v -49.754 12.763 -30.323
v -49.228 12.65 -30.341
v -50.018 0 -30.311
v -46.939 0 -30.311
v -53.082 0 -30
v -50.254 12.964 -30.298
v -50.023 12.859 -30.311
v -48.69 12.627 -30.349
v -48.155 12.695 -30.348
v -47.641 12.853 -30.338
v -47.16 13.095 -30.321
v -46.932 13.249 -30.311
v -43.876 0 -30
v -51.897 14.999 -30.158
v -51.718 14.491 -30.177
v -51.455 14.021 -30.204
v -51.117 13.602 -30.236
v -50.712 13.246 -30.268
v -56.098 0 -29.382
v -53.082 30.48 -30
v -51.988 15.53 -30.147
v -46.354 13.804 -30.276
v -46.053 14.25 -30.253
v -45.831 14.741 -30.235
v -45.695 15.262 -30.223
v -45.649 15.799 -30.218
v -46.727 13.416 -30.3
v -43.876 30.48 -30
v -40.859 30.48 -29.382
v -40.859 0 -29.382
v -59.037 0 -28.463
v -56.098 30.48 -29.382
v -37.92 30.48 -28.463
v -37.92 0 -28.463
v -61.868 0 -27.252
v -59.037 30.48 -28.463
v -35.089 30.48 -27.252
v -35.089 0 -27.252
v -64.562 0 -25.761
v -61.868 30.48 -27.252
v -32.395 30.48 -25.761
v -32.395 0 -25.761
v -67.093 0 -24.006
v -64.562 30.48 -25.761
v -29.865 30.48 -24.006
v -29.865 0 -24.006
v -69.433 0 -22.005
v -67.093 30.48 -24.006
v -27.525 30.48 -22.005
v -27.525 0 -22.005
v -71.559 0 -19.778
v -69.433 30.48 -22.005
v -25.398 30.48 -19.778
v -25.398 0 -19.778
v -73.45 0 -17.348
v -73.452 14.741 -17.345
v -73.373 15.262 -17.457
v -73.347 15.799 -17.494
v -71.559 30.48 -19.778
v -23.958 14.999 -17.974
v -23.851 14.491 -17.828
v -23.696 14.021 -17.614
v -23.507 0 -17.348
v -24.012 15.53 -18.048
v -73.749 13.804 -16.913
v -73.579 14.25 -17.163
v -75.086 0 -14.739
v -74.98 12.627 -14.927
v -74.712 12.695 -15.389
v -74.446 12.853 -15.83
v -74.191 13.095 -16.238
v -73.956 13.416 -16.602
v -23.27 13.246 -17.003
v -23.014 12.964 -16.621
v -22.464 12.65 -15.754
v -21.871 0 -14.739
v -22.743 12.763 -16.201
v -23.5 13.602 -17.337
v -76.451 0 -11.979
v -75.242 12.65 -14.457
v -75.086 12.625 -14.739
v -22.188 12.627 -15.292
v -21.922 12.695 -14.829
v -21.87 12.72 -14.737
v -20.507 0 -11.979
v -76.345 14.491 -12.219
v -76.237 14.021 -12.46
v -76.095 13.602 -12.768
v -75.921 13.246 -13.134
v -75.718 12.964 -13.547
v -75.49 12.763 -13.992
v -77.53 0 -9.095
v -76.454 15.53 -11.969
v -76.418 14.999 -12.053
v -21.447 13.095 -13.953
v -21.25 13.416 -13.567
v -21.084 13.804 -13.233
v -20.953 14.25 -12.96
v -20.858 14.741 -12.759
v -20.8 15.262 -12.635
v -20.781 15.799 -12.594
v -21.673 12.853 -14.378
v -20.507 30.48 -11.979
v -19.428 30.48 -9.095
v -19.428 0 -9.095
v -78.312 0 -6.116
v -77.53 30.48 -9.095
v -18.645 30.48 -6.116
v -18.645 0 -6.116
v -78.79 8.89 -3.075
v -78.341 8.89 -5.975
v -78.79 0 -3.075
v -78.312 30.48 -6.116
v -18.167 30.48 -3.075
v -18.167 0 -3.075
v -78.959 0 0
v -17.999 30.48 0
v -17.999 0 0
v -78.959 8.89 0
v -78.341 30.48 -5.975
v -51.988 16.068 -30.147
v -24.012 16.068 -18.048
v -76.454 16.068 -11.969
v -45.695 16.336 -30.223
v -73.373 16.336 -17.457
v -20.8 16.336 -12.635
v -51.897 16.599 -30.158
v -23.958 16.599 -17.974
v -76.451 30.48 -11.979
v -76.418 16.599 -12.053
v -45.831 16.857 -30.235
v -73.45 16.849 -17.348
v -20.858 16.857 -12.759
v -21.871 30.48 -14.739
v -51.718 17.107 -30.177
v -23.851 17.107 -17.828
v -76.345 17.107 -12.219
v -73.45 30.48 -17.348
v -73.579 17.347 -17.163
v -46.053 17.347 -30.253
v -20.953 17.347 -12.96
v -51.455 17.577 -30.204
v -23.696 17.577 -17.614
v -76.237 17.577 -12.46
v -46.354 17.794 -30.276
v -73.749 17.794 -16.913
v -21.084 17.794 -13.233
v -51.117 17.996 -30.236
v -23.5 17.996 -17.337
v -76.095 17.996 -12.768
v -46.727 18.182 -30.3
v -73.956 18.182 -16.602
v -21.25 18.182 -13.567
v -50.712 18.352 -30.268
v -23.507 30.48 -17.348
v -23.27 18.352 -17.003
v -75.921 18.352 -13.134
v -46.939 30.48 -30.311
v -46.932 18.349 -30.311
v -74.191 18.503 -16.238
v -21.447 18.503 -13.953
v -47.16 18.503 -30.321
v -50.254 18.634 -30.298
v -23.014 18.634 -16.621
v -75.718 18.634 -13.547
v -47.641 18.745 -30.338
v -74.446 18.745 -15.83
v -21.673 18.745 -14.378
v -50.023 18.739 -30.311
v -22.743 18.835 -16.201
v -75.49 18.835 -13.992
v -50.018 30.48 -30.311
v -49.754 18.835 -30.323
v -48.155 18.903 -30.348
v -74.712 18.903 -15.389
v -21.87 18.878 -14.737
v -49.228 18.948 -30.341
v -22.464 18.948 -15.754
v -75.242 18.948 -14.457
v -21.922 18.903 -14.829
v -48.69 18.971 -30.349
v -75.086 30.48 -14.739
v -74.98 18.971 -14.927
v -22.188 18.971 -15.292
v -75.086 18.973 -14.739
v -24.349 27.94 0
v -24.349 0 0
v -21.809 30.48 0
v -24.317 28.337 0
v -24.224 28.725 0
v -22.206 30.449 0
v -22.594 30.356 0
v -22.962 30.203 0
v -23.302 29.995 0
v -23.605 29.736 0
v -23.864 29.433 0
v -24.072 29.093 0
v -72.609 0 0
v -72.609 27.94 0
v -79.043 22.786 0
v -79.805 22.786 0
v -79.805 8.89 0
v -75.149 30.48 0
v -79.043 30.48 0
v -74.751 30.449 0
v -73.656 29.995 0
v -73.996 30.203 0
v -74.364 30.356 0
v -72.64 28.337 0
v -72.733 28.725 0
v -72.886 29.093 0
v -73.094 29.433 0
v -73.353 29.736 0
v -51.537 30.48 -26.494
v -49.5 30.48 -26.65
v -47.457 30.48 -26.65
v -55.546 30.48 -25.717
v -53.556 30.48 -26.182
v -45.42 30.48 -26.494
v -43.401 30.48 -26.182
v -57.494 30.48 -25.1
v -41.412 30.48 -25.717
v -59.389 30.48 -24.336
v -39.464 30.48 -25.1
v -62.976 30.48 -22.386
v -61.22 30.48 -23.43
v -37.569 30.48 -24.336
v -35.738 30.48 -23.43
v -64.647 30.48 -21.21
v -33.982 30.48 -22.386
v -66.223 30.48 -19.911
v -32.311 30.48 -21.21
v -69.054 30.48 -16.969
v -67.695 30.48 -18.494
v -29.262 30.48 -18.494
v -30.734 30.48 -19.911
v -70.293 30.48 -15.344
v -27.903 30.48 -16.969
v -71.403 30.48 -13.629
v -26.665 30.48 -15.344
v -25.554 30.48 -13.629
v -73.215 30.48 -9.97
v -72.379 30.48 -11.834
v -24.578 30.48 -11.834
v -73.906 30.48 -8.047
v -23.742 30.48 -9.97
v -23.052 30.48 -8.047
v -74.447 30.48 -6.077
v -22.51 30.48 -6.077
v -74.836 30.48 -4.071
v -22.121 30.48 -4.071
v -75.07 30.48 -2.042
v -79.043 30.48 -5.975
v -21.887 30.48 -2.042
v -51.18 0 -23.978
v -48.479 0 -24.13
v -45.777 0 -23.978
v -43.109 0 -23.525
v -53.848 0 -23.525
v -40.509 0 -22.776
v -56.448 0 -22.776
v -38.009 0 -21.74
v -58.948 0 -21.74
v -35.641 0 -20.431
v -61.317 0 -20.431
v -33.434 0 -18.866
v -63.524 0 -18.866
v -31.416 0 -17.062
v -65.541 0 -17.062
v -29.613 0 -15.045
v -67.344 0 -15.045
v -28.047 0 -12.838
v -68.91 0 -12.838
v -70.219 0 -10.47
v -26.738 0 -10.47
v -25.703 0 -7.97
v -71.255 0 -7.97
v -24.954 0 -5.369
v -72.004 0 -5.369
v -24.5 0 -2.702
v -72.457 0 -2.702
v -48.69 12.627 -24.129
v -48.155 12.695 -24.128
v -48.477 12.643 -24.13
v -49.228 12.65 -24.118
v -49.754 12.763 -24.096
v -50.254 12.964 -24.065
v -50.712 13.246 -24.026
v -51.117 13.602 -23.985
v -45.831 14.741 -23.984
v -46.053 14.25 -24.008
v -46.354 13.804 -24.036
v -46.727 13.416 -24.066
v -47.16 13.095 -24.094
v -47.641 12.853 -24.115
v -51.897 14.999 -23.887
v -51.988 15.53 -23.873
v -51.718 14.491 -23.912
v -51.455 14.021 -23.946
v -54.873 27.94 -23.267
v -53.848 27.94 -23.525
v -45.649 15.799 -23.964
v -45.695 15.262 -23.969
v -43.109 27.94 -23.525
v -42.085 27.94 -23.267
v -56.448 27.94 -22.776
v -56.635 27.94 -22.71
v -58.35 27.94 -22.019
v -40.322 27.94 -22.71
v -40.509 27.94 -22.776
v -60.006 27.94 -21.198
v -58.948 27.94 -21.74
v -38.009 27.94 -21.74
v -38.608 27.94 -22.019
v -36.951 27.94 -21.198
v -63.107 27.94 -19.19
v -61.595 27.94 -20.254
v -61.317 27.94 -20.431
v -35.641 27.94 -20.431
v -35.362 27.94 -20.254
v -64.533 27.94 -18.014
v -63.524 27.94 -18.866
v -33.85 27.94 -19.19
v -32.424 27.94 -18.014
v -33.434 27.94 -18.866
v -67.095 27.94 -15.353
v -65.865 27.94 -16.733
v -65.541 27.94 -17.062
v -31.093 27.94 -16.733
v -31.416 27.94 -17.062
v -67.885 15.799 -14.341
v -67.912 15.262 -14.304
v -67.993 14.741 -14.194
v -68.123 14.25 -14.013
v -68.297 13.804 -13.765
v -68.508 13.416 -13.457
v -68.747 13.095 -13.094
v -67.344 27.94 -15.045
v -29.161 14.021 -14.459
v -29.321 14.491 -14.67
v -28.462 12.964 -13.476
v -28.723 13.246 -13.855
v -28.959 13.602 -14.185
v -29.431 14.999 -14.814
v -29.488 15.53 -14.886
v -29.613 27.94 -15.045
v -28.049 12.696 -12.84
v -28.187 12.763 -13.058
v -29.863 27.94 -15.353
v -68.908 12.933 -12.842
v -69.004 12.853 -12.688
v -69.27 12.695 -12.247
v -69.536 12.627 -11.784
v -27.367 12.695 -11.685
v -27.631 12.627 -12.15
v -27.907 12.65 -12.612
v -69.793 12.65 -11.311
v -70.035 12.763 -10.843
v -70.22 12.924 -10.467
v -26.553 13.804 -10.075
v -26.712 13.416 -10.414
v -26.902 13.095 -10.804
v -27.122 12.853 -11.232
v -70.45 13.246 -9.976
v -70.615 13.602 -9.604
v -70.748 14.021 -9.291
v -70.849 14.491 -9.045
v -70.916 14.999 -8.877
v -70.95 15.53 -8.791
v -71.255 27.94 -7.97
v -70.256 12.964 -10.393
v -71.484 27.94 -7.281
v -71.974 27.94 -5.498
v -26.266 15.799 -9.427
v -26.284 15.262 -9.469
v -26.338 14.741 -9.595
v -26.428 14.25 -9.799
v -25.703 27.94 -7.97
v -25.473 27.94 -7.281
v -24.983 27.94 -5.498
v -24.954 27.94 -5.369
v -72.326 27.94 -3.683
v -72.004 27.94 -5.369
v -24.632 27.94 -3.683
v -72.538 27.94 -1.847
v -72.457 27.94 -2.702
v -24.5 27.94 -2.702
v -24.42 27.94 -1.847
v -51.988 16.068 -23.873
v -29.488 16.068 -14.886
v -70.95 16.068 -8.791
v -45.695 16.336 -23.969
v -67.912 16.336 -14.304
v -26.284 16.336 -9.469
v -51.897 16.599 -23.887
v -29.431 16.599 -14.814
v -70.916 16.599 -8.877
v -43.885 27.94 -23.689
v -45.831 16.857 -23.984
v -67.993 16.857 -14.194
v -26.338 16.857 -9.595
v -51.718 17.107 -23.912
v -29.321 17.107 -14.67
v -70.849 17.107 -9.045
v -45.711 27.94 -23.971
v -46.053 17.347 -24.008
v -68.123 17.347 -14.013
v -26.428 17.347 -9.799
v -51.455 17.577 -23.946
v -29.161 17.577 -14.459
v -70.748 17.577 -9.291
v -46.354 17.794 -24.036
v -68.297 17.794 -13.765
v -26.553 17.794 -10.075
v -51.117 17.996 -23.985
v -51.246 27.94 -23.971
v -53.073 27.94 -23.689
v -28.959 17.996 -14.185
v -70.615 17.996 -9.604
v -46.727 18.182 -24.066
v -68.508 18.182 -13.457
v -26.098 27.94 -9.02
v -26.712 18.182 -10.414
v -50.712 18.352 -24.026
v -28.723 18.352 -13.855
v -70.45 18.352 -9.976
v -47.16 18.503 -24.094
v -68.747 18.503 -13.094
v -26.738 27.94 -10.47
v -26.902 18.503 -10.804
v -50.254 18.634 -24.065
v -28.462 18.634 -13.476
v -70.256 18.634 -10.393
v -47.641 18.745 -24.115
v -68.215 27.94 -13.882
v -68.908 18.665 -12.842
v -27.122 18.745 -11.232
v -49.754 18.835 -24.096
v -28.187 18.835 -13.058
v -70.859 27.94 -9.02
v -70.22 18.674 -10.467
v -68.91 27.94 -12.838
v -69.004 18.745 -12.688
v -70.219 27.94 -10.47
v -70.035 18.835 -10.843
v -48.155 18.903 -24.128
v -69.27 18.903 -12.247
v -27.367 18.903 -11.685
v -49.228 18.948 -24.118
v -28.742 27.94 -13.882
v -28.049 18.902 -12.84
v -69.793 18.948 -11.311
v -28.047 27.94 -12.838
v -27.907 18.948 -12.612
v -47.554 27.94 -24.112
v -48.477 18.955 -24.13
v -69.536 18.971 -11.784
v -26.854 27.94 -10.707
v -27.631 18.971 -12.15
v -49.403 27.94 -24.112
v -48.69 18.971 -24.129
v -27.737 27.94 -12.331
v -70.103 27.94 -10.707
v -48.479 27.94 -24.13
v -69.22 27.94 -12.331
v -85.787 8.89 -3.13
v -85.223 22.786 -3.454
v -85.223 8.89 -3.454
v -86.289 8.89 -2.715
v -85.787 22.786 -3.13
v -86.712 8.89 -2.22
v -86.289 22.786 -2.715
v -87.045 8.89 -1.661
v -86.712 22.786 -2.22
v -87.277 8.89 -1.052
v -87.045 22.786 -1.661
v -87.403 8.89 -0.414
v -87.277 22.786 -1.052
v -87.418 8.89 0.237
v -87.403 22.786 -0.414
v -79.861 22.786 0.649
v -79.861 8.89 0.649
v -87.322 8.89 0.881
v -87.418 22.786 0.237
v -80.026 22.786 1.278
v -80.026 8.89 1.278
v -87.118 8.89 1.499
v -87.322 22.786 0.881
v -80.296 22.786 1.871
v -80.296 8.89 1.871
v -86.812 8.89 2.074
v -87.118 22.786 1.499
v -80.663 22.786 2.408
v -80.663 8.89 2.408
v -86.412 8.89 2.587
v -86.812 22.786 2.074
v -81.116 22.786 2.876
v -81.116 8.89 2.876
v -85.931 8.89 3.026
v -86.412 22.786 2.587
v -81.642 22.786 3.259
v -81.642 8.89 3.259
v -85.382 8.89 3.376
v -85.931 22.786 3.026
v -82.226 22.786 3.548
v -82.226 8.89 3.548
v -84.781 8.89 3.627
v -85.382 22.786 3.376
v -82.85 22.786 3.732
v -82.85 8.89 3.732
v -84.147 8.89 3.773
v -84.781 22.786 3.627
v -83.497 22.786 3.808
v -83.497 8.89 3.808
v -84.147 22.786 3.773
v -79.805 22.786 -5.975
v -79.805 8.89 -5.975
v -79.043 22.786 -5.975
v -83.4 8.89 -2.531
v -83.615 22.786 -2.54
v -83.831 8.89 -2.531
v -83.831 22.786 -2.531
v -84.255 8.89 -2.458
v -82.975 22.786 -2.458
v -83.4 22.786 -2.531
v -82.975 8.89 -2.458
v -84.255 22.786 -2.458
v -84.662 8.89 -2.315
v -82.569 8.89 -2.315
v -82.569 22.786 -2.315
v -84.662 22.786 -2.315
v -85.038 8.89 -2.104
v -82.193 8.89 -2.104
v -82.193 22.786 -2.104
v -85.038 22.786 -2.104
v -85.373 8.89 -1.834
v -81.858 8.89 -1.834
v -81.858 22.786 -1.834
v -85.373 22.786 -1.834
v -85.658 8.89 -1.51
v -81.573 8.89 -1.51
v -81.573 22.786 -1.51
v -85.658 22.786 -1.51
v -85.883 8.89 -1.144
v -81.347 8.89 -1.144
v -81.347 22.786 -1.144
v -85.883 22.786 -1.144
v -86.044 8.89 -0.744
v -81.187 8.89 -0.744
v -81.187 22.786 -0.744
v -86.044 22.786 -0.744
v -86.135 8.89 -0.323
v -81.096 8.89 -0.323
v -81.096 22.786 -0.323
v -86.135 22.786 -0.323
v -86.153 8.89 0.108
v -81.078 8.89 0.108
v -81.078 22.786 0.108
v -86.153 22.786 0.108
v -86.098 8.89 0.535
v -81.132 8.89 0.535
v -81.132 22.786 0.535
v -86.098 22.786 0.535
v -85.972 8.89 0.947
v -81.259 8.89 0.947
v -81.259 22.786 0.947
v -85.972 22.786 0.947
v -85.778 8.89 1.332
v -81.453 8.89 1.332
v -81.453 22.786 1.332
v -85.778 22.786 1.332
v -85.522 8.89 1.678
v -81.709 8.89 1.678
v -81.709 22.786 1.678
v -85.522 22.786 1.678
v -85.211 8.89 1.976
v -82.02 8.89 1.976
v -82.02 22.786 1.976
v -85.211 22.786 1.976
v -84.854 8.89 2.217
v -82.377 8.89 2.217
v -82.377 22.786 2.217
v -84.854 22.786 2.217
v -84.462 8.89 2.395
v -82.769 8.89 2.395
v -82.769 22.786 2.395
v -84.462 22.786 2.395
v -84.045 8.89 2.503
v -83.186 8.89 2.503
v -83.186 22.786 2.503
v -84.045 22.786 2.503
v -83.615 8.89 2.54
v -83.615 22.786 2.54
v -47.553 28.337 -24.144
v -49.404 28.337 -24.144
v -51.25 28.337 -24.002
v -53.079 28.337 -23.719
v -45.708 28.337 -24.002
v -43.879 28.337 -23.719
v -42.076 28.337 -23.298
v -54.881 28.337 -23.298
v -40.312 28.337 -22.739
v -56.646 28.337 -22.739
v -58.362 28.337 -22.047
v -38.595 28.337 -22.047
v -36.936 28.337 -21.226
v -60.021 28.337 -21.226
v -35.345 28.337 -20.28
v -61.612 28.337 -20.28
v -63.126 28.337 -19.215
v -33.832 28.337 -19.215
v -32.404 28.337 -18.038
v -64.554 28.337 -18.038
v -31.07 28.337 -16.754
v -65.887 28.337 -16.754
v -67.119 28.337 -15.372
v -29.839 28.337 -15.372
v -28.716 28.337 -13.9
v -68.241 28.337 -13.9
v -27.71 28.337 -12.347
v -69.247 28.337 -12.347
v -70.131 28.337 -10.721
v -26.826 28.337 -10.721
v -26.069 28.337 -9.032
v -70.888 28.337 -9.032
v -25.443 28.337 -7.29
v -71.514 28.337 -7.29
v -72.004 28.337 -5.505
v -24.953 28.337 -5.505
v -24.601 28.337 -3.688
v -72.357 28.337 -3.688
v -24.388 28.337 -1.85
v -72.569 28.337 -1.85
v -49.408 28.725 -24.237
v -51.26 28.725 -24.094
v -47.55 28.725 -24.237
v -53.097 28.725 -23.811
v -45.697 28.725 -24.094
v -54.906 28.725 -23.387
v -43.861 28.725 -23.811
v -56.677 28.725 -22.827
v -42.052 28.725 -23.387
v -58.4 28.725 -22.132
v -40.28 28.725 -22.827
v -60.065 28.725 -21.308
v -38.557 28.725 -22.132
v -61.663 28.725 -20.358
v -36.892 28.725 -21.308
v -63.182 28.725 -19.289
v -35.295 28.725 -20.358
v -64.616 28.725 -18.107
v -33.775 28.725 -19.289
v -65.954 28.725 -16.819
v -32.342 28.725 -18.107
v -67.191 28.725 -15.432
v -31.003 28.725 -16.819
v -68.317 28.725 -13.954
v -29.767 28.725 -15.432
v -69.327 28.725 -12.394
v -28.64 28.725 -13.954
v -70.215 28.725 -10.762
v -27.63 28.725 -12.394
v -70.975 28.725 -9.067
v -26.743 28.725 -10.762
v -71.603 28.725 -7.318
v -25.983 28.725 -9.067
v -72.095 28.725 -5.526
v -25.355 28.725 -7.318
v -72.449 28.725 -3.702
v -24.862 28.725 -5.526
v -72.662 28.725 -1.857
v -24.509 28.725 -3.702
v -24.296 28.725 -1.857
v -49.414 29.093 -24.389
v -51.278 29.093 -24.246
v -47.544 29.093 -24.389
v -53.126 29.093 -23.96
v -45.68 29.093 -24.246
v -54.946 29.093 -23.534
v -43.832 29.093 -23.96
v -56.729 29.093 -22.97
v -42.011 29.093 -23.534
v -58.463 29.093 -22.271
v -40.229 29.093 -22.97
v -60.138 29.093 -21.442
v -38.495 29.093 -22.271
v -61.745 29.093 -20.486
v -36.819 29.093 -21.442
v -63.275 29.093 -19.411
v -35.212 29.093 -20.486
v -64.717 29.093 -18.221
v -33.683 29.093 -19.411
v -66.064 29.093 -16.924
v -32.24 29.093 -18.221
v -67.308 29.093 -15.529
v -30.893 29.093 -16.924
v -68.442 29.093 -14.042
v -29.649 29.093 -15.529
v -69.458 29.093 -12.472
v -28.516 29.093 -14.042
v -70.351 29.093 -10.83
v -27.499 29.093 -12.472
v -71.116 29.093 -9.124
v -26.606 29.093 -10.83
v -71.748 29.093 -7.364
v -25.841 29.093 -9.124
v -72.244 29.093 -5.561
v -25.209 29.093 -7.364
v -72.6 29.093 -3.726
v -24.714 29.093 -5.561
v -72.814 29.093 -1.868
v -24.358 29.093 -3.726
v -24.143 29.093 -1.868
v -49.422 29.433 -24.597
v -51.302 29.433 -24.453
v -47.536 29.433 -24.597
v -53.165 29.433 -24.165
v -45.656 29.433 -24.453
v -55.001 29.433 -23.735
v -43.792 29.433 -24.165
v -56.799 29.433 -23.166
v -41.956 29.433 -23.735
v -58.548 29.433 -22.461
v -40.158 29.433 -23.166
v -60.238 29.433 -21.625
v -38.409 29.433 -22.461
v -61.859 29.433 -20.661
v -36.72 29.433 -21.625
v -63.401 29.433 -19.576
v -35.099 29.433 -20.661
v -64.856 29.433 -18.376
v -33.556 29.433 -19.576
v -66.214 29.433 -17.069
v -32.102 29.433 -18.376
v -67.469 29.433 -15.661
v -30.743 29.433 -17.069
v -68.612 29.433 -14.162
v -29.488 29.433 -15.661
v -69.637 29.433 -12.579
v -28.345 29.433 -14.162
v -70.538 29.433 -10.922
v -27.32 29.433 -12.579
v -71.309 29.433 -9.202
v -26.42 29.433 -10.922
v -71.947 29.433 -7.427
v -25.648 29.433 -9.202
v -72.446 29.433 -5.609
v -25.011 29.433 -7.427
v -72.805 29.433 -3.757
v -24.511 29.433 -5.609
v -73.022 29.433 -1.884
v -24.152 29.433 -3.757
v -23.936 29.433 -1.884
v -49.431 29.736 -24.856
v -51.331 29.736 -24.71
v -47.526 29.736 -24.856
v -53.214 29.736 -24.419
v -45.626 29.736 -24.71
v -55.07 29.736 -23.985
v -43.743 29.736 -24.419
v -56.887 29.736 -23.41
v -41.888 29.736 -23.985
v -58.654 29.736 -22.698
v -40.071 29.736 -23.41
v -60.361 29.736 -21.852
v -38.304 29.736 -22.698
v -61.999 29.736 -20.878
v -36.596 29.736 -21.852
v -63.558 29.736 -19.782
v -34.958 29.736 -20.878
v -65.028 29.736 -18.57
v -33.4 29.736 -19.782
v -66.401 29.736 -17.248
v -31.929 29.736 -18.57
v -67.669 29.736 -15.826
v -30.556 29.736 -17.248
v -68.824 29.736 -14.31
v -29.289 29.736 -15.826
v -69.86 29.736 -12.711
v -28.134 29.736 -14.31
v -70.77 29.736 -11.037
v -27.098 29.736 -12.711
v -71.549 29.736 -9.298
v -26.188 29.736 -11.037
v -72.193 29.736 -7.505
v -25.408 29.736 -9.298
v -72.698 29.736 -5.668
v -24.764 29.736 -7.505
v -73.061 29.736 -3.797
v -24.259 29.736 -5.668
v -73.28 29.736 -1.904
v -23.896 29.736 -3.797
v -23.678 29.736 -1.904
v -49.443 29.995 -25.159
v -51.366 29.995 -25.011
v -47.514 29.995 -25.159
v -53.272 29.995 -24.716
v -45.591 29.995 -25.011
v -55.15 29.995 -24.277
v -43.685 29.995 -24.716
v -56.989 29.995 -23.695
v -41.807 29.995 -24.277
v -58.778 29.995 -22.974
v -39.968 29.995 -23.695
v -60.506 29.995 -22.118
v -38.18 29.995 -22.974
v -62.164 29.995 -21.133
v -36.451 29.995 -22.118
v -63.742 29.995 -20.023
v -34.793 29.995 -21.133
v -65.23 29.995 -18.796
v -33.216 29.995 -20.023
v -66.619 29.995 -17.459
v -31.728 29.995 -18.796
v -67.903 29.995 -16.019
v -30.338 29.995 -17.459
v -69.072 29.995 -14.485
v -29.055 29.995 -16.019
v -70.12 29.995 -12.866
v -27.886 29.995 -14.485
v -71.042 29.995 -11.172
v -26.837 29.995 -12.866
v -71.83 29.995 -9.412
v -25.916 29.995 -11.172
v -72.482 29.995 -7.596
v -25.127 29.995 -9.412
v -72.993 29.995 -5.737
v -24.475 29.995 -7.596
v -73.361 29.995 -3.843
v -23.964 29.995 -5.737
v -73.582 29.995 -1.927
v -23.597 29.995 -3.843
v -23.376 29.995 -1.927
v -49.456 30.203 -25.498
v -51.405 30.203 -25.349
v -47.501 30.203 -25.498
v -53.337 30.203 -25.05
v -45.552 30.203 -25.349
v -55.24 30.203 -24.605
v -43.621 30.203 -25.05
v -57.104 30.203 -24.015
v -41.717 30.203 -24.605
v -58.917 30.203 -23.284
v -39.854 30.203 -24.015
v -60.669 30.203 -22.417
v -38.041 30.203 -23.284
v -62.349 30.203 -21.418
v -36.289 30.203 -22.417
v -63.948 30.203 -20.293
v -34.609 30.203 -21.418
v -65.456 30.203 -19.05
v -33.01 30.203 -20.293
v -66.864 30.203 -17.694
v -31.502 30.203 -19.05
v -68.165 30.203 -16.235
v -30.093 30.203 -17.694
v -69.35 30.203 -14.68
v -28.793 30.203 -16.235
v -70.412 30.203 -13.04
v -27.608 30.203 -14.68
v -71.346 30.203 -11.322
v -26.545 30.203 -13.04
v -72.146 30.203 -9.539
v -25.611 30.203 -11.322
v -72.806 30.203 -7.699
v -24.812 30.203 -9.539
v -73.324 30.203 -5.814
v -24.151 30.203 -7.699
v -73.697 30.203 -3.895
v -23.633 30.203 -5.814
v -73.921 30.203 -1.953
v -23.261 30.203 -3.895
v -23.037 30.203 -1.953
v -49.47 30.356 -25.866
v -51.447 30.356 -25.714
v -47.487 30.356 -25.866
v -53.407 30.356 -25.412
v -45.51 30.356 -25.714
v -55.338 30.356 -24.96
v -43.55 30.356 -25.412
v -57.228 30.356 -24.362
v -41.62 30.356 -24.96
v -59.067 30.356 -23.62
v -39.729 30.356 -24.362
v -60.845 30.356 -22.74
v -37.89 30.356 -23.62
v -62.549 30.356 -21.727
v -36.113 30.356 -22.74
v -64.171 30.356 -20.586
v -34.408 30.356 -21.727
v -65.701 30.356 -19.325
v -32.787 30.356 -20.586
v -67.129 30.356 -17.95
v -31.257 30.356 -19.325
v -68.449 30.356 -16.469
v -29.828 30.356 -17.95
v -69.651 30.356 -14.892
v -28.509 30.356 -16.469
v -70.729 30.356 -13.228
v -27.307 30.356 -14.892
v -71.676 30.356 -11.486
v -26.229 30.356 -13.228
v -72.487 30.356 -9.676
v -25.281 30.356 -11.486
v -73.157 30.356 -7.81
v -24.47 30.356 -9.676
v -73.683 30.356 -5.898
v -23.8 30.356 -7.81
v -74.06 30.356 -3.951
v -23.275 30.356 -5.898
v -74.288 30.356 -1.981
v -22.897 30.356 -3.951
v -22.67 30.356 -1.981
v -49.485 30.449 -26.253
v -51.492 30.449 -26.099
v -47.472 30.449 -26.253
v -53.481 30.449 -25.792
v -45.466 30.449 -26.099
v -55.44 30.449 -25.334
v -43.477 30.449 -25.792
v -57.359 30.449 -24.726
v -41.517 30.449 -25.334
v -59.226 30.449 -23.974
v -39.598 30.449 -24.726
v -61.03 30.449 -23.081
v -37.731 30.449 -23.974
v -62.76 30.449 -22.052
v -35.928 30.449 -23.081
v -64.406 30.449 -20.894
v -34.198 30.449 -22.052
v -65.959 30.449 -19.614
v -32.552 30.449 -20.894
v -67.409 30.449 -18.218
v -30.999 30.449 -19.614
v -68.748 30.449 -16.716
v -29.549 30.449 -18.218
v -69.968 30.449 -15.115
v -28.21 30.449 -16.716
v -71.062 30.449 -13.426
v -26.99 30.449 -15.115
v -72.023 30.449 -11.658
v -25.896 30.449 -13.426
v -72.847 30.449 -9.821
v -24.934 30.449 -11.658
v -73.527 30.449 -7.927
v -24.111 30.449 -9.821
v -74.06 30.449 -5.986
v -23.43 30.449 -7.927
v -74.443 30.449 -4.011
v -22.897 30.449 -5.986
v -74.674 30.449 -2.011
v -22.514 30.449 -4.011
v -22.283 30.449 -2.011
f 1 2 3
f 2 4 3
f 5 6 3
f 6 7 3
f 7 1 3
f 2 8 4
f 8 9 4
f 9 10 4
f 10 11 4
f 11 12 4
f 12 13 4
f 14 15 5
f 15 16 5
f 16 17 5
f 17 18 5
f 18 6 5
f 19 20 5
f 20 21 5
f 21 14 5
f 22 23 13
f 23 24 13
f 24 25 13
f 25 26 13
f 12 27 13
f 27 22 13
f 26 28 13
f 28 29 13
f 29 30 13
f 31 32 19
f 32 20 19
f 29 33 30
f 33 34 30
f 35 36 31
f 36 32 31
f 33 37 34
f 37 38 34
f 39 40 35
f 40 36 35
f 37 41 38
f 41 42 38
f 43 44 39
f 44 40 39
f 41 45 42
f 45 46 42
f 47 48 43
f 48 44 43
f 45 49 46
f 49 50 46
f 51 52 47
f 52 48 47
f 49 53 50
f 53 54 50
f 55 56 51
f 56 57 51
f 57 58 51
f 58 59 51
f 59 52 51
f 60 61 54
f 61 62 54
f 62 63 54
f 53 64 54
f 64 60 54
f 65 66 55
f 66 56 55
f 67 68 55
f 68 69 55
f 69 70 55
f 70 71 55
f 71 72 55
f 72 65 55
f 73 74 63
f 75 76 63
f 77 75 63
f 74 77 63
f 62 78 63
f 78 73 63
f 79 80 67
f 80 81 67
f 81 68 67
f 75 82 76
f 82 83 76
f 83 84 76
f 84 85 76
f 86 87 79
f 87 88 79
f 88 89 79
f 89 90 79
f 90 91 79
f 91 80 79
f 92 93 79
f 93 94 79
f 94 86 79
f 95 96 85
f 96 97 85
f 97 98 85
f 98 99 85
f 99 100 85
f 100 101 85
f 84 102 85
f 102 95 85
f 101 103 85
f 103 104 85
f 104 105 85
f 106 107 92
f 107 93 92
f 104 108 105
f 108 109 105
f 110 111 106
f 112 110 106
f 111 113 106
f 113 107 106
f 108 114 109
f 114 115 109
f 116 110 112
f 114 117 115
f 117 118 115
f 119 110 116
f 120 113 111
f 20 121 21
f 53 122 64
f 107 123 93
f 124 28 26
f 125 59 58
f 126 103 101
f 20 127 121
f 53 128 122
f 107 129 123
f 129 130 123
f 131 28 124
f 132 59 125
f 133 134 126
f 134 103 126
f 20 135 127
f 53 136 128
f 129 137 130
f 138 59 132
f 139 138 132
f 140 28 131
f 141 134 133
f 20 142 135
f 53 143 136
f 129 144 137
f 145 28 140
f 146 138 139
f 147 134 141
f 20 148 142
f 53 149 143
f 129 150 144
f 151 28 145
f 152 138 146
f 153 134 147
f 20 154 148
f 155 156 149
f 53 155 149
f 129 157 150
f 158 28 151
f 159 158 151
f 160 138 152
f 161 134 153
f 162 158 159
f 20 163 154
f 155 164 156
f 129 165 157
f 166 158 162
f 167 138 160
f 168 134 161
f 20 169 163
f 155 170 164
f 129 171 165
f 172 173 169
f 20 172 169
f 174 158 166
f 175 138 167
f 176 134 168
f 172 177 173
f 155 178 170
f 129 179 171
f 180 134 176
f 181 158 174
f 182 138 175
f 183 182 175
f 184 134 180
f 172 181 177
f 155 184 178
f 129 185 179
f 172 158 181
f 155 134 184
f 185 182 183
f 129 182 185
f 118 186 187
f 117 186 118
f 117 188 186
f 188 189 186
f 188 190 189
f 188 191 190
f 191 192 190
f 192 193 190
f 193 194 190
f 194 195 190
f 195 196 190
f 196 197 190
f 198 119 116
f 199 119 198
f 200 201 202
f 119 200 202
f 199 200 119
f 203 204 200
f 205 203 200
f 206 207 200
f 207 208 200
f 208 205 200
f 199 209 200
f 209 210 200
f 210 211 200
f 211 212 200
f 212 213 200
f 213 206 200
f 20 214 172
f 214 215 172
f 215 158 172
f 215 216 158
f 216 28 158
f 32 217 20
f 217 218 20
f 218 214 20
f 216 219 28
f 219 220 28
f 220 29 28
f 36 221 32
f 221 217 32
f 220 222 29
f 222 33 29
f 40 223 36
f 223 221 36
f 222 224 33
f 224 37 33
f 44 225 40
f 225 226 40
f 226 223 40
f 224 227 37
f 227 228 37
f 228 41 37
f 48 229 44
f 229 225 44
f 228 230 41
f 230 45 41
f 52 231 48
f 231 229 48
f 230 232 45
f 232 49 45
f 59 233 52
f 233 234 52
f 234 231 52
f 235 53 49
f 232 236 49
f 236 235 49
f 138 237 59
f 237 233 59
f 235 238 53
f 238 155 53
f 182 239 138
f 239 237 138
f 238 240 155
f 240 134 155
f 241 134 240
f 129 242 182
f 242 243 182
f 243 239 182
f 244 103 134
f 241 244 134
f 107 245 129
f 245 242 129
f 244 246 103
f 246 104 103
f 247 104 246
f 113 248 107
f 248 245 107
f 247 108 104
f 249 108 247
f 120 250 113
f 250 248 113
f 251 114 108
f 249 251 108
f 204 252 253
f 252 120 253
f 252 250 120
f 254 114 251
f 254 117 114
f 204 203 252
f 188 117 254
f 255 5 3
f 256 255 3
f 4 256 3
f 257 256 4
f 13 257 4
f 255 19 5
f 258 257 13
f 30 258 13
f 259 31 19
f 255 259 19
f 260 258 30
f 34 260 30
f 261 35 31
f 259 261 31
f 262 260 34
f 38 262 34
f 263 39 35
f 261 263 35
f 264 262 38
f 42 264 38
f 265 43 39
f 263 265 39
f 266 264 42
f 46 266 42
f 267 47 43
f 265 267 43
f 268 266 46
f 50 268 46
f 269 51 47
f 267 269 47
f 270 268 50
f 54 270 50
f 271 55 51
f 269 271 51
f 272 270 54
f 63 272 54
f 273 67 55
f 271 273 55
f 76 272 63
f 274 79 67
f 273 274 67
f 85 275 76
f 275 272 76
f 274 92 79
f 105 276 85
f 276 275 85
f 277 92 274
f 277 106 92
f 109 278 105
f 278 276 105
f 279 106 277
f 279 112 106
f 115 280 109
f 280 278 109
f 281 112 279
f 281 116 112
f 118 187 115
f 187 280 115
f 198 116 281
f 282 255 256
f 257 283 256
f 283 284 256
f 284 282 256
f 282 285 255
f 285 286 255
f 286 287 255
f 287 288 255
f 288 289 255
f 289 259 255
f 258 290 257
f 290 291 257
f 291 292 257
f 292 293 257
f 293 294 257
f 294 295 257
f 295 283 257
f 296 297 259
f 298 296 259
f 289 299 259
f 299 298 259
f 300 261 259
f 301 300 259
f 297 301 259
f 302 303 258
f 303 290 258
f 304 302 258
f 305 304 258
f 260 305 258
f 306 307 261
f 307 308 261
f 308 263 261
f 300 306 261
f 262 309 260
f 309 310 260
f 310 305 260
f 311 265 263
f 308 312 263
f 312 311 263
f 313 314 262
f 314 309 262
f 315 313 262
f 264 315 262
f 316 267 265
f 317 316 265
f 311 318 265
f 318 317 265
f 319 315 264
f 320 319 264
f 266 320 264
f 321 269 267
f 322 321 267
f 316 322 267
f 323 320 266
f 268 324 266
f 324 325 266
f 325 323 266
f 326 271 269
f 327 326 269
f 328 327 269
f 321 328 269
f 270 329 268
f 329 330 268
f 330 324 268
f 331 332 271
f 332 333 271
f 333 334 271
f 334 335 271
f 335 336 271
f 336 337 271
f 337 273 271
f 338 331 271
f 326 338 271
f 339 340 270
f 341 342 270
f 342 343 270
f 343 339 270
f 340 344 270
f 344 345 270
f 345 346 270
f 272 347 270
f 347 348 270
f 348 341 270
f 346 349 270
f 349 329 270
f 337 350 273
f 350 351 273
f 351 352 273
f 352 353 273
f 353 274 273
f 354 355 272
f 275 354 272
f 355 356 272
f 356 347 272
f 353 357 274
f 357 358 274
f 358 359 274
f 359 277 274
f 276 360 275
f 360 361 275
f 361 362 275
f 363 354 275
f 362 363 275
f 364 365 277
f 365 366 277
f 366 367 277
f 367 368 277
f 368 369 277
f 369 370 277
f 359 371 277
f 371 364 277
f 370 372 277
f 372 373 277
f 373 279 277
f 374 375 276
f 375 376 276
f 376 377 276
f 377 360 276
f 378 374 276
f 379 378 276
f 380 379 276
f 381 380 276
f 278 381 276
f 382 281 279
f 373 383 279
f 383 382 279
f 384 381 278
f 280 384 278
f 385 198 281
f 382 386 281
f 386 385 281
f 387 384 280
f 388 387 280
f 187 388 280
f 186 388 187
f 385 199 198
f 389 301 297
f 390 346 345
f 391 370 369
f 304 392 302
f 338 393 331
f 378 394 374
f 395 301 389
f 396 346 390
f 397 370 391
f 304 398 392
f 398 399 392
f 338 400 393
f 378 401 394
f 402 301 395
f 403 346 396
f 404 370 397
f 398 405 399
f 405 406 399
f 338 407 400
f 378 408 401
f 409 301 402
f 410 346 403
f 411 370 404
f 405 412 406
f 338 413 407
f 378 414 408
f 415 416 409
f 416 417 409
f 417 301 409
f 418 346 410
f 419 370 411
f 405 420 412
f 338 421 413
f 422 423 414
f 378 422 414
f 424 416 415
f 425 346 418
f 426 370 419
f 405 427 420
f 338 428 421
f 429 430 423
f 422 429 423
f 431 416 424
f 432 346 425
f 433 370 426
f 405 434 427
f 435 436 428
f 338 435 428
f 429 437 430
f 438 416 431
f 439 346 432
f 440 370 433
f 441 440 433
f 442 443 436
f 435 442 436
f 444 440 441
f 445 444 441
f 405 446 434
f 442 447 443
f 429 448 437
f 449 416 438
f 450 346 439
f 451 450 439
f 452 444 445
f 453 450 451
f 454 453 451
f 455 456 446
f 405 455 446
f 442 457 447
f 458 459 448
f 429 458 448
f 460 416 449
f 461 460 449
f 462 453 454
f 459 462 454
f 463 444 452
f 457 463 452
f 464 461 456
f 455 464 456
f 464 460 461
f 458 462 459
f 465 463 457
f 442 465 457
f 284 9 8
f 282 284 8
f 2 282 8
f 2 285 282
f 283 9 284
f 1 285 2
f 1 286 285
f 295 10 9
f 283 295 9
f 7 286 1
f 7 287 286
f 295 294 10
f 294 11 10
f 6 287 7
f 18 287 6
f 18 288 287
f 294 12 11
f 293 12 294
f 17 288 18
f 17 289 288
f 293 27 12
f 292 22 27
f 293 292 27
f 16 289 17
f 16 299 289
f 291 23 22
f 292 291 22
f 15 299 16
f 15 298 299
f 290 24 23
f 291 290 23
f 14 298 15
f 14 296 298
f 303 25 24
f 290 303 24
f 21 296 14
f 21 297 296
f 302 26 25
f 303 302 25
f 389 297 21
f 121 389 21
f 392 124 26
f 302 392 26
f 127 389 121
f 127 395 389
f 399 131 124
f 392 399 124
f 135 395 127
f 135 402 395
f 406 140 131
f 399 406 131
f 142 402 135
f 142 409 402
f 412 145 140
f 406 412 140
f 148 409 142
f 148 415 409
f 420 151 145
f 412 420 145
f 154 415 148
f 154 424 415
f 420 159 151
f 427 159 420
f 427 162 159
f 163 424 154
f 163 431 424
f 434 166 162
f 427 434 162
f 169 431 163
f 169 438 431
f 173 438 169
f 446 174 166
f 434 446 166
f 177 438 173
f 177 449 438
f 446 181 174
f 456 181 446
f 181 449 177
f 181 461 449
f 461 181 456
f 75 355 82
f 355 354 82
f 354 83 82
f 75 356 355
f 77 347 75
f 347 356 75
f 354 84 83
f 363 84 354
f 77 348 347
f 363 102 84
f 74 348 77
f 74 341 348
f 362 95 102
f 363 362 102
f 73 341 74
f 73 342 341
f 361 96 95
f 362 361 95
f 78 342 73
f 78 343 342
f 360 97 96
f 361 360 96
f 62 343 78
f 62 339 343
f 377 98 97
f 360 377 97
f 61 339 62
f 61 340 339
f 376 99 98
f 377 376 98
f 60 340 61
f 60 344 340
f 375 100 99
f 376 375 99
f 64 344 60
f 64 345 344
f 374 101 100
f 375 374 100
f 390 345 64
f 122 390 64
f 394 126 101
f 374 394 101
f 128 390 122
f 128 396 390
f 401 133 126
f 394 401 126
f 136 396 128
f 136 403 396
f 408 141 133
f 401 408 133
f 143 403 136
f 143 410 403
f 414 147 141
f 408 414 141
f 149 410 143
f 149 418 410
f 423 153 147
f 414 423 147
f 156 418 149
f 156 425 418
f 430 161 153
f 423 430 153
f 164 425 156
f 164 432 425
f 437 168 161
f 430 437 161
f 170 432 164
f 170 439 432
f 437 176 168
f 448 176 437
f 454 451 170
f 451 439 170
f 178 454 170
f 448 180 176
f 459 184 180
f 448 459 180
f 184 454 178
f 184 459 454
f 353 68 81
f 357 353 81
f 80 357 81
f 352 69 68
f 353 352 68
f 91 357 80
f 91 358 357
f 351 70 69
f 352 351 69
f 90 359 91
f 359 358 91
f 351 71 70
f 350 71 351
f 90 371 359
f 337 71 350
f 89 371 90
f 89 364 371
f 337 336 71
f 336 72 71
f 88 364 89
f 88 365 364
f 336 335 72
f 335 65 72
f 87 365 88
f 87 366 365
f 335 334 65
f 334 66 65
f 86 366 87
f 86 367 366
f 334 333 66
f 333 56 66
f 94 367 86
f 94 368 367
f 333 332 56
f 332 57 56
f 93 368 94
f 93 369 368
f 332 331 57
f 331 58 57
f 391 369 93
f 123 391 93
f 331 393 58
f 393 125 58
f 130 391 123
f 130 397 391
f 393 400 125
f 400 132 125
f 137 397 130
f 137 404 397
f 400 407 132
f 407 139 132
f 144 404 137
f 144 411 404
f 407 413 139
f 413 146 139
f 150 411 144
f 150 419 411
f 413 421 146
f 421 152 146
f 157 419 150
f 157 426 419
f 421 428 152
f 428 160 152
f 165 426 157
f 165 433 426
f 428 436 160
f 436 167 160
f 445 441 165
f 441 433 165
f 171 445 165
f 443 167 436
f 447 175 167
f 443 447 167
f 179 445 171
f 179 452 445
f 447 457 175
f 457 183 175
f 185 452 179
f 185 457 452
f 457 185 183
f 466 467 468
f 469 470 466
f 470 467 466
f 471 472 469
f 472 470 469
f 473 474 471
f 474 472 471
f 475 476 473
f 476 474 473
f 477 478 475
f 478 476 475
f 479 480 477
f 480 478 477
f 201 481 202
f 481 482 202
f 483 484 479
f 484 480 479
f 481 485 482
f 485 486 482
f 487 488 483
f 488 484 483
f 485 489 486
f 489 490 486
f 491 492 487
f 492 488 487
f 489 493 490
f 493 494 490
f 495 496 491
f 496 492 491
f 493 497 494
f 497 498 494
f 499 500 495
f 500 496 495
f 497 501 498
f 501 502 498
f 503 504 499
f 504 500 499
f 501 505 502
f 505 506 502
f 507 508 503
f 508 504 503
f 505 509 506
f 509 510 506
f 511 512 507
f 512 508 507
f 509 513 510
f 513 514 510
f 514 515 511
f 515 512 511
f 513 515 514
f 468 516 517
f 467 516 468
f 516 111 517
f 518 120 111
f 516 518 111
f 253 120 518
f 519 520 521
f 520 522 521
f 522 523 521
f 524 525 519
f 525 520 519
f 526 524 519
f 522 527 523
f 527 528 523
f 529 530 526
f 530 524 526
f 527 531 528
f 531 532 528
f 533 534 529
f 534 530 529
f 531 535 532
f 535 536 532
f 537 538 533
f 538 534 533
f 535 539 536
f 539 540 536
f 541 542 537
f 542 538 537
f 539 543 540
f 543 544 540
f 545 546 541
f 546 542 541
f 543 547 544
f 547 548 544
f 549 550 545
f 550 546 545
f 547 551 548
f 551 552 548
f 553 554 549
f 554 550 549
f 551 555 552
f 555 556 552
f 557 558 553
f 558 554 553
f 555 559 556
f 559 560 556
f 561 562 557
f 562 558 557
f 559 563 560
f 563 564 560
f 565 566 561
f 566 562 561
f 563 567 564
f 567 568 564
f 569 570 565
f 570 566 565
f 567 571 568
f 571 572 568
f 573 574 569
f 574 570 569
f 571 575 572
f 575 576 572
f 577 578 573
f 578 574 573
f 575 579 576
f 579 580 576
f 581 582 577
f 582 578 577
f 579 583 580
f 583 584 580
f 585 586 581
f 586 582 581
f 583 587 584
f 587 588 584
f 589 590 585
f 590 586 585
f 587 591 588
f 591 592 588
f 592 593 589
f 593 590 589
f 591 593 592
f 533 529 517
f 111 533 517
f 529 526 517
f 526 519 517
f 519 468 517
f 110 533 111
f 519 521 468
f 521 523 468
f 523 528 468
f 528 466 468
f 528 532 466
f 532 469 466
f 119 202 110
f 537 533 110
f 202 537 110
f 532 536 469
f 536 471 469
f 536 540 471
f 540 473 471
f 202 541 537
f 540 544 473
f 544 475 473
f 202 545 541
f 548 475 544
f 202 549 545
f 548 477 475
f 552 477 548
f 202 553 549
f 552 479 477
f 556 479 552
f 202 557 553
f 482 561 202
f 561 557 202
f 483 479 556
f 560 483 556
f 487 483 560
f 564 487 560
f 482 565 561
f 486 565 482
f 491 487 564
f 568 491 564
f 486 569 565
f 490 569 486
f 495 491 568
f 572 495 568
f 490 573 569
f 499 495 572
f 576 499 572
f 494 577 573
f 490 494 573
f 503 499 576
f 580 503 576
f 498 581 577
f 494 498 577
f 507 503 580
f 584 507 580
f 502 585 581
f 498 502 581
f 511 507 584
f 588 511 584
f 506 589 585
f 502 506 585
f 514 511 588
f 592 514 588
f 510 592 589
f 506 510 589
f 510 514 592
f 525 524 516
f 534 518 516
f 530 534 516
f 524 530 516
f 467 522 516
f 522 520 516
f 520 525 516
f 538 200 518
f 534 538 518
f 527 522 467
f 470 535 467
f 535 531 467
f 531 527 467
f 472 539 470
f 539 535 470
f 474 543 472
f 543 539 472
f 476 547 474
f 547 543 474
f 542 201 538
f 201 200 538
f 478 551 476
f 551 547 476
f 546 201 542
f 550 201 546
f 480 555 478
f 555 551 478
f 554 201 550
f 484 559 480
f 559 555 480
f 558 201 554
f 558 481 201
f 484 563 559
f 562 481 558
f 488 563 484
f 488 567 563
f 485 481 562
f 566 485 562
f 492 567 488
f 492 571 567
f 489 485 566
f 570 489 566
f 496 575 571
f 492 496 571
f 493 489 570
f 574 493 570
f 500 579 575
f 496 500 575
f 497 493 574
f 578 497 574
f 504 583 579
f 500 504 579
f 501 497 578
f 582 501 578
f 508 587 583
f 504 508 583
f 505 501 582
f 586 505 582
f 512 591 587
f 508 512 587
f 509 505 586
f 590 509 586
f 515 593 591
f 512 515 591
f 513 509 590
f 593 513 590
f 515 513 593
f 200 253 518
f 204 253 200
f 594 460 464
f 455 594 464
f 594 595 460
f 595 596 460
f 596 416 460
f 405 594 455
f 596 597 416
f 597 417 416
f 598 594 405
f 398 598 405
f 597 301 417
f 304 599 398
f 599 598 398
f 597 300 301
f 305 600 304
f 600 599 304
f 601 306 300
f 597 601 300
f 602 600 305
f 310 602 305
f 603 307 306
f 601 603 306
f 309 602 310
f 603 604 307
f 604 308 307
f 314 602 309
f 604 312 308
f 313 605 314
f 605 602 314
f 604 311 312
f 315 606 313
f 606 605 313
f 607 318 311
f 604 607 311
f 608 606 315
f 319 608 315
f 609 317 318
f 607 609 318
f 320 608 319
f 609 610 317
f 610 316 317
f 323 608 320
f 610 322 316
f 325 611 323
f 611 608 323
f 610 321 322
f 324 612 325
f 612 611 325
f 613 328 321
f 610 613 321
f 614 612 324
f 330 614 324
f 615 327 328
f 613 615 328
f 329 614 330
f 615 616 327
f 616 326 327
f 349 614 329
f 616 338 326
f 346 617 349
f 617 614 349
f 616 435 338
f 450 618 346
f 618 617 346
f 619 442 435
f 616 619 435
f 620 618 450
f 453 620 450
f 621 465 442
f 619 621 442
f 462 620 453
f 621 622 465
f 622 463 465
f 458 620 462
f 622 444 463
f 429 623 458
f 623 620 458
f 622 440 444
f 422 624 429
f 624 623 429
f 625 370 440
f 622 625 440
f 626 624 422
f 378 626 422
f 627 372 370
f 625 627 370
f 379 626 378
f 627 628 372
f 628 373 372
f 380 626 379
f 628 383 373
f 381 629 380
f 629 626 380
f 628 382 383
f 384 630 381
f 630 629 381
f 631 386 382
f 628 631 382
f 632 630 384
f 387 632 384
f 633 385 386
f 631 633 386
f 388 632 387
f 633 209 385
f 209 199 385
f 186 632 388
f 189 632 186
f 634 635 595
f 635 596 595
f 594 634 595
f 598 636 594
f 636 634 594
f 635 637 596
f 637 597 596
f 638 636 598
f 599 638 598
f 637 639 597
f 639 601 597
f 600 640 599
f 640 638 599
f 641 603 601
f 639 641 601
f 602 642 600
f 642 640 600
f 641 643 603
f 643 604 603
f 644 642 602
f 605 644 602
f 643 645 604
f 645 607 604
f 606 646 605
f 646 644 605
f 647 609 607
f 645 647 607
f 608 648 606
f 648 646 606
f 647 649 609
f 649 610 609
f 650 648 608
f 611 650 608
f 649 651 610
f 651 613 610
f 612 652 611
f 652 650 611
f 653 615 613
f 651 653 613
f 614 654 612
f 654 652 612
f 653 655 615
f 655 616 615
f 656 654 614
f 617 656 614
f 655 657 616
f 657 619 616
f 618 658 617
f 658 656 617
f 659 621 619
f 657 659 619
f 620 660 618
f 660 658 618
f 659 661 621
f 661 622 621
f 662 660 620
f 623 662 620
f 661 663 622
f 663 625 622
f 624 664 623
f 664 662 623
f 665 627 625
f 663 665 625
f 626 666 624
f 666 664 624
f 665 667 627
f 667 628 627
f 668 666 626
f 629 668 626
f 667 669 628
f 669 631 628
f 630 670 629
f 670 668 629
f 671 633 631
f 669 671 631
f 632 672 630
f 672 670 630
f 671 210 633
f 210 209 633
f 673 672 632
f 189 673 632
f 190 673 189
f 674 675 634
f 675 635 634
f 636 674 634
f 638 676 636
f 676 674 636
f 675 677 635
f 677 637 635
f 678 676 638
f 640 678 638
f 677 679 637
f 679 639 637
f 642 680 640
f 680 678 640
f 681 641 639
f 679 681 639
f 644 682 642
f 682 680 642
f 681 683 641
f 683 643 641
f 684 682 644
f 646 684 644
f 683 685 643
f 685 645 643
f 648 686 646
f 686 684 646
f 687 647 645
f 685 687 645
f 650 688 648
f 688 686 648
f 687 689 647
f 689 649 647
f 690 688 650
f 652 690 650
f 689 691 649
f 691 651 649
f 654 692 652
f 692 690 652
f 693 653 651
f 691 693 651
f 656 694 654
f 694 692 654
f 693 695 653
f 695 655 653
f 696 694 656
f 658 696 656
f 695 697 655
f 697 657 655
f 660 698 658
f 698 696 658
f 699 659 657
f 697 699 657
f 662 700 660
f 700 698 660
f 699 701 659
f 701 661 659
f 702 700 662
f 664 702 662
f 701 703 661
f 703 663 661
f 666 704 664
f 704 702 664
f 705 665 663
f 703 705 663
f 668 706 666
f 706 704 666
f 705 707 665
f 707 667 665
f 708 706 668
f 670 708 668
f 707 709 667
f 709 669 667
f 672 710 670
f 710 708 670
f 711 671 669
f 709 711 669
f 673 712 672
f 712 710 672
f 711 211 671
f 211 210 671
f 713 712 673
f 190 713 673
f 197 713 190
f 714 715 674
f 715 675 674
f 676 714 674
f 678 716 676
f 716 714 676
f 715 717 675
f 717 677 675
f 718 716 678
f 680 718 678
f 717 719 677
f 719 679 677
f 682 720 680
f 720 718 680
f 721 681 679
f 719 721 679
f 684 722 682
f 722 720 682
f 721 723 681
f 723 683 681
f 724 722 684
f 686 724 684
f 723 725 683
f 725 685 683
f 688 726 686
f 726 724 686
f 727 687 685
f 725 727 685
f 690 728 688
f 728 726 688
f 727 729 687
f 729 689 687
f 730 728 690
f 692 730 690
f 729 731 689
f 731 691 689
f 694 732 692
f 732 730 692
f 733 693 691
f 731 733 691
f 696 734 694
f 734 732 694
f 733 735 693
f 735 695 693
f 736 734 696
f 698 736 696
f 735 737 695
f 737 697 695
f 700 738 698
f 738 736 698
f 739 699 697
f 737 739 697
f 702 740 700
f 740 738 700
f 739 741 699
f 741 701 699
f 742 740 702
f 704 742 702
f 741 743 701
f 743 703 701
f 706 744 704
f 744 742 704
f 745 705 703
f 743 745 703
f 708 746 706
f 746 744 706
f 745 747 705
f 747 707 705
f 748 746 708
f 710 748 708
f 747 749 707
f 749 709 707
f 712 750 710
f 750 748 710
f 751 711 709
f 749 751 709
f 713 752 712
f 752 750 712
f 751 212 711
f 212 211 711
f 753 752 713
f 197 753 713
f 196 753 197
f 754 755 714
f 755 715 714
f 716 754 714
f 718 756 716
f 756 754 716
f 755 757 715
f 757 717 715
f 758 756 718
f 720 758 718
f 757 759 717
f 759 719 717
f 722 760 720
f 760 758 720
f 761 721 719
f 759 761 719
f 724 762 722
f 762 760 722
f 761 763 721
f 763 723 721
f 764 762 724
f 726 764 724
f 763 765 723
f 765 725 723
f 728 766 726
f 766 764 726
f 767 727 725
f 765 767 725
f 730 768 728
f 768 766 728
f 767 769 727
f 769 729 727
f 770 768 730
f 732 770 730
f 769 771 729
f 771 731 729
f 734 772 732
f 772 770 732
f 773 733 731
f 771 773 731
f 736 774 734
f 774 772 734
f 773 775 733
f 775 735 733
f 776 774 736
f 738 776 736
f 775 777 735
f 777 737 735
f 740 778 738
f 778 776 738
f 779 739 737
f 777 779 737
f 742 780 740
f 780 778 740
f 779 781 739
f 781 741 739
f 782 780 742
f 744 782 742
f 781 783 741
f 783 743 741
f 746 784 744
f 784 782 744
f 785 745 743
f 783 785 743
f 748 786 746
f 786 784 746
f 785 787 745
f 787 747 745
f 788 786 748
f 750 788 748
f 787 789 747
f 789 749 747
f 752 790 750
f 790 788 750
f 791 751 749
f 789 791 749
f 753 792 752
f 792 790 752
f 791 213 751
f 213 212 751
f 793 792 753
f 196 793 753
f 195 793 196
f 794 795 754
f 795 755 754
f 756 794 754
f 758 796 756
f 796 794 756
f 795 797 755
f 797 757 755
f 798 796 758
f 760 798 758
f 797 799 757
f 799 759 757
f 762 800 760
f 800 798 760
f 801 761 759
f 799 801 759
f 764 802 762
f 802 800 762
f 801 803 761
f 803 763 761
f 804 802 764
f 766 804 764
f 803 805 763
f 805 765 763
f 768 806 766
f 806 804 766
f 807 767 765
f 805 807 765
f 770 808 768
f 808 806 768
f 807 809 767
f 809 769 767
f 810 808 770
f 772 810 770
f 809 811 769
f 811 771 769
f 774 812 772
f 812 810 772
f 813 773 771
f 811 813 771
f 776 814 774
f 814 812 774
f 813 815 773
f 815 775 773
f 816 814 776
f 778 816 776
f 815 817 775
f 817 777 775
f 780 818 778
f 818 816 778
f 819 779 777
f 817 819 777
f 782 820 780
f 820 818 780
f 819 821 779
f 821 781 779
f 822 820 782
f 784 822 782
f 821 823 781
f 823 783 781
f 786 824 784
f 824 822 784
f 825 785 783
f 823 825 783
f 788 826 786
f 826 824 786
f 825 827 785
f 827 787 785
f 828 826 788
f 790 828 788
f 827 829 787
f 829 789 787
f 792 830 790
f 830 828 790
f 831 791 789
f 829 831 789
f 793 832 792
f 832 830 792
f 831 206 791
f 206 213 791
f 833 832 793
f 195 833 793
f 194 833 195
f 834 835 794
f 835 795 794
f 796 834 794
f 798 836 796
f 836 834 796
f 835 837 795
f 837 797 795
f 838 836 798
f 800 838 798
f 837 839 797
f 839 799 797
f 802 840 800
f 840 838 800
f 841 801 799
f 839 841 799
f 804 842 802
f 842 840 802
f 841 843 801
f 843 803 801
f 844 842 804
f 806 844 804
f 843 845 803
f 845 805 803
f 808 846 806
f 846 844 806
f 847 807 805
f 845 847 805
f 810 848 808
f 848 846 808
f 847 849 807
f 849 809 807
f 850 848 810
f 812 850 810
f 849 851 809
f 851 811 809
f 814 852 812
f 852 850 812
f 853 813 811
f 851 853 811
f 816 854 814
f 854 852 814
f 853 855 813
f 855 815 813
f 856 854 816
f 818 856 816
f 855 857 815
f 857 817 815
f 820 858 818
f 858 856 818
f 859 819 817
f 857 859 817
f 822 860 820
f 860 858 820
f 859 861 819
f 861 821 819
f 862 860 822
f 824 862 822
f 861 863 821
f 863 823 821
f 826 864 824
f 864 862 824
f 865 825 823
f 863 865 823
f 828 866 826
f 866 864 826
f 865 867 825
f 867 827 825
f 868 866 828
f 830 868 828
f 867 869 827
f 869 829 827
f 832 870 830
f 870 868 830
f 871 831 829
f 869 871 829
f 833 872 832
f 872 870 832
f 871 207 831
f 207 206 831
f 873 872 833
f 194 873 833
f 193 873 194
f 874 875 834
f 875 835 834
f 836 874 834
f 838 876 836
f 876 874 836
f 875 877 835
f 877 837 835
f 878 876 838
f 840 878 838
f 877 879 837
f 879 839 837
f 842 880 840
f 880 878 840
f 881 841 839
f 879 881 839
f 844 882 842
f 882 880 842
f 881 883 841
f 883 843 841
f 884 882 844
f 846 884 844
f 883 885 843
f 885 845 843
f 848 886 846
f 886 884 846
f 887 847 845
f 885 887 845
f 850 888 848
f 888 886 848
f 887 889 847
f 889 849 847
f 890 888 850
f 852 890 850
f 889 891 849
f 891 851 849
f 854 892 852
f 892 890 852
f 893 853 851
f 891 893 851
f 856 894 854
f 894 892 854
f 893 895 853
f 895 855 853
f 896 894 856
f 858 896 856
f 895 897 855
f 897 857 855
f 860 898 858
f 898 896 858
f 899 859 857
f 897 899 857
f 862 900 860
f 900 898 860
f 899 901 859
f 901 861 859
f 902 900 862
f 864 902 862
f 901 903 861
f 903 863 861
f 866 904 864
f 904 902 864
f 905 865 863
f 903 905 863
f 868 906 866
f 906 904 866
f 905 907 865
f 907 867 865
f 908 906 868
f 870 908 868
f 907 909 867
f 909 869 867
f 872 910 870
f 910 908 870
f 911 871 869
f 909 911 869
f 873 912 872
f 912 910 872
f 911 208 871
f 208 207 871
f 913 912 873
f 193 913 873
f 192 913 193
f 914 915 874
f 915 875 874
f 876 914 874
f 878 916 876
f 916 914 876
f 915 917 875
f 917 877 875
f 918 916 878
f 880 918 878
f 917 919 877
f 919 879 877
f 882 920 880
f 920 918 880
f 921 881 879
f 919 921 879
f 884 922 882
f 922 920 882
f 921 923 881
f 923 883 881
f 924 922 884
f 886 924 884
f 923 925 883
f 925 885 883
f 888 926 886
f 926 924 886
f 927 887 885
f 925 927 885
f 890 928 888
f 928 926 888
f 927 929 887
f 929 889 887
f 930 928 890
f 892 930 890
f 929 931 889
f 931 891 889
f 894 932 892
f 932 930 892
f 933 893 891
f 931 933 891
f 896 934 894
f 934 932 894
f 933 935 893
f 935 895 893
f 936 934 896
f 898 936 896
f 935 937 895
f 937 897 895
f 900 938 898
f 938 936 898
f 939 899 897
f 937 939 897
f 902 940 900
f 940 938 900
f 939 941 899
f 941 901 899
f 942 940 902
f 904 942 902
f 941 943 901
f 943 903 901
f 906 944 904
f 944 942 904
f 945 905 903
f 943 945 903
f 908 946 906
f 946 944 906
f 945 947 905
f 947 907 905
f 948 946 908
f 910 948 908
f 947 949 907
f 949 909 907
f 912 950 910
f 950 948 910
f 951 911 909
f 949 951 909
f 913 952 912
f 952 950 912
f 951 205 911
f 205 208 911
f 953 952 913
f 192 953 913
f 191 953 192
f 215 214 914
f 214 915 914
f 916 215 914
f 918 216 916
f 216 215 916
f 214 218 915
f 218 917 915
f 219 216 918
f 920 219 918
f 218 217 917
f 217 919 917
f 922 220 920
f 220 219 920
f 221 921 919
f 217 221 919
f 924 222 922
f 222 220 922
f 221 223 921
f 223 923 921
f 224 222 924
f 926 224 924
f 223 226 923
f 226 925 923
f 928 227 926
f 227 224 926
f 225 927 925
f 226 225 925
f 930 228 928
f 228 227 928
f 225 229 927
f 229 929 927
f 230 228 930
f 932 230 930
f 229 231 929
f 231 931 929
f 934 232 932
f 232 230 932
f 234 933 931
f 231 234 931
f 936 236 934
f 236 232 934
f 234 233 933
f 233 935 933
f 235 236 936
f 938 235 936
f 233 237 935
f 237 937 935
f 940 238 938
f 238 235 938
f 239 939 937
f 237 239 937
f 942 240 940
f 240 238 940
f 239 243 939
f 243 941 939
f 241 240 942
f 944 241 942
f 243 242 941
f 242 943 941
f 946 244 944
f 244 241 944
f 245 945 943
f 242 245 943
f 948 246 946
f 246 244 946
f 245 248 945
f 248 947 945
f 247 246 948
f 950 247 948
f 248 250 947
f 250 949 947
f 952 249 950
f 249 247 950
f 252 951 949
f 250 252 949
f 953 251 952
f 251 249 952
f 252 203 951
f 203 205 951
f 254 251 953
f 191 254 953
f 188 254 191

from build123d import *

# Parameters (mm, degrees)
BOSS_EXTRUDE1_DEPTH     = 30.48
SKETCH3_R               = 24.13
CUT_EXTRUDE4_DEPTH      = 90.914560616
SKETCH4_R               = 3.175
CUT_EXTRUDE5_DEPTH      = 63.754
CIRPATTERN3_COUNT       = 6
BOSS_EXTRUDE3_START     = -21.59
SKETCH8_R               = 2.54
BOSS_EXTRUDE3_DEPTH     = 21.59
CUT_EXTRUDE7_DEPTH      = 98.433832269
CUT_EXTRUDE7_DEPTH_BACK = 98.433832269
SKETCH9_W               = 7.62
SKETCH9_H               = 7.694027115
SKETCH10_W              = 0.762
SKETCH10_H              = 7.694027115
CUT_EXTRUDE8_DEPTH      = 21.59
FILLET1_R               = 2.54


with BuildPart() as part:
    # Sketch1 → Boss-Extrude1 (new body)
    with BuildSketch(Plane(origin=(0, 0, 0), x_dir=(1, 0, 0), z_dir=(0, 1, 0))):
        with BuildLine():
            Line((-78.958715675, 0), (-17.998715675, 0))
            ThreePointArc((-17.998715675, 0), (-48.478715675, 30.349942827), (-78.958715675, 0))
        make_face()
    extrude(amount=BOSS_EXTRUDE1_DEPTH)

    # Sketch3 → Cut-Extrude4 (cut, through all)
    with BuildSketch(Plane(origin=(0, 0, 0), x_dir=(1, 0, 0), z_dir=(0, 1, 0))):
        with Locations((-48.478715675, 0)):
            Circle(SKETCH3_R)
    extrude(amount=CUT_EXTRUDE4_DEPTH, mode=Mode.SUBTRACT)

    # Sketch4 → Cut-Extrude5 (cut)
    with BuildSketch(Plane.XY):
        with Locations((-48.824364134, 15.798935299)):
            Circle(SKETCH4_R)
    cut_extrude5 = extrude(amount=-CUT_EXTRUDE5_DEPTH, mode=Mode.SUBTRACT)

    # CirPattern3: Cut-Extrude5 ×6 about axis
    cirpattern3_axis = Axis((-48.478715675, 30.48, 0.130335837), (0, -1, 0))
    for i in range(1, CIRPATTERN3_COUNT):
        add(cut_extrude5.rotate(cirpattern3_axis, i * 360 / CIRPATTERN3_COUNT), mode=Mode.SUBTRACT)

    # Sketch8 → Boss-Extrude3 (add)
    with BuildSketch(Plane(origin=(0, 30.48, 0), x_dir=(1, 0, 0), z_dir=(0, 1, 0)).offset(BOSS_EXTRUDE3_START)):
        with BuildLine():
            ThreePointArc((-85.222855562, 3.454304155), (-85.663790647, -3.212512214), (-79.805409512, 0))
            Line((-79.805409512, 0), (-78.958715675, 0))
            ThreePointArc((-78.958715675, 0), (-78.797525927, 3.002894504), (-78.341212544, 5.975290109))
            Line((-78.341212544, 5.975290109), (-78.958715675, 5.975290109))
            Line((-78.958715675, 5.975290109), (-79.805409512, 5.975290109))
            Line((-79.805409512, 5.975290109), (-85.222855562, 3.454304155))
        make_face()
        with Locations(Location((-83.615409512, 0, 0), (0, 0, 270))):
            Circle(SKETCH8_R, mode=Mode.SUBTRACT)
    extrude(amount=BOSS_EXTRUDE3_DEPTH)

    # Sketch9 → Cut-Extrude7 (cut, two sides: drawn at the far end of the back side and taken through both)
    with BuildSketch(Plane.XY.offset(-CUT_EXTRUDE7_DEPTH_BACK)):
        with Locations((-83.615409512, 26.632986443)):
            Rectangle(SKETCH9_W, SKETCH9_H)
    extrude(amount=CUT_EXTRUDE7_DEPTH + CUT_EXTRUDE7_DEPTH_BACK, mode=Mode.SUBTRACT)

    # Sketch10 → Cut-Extrude8 (cut)
    with BuildSketch(Plane.XY):
        with Locations((-79.424409512, 26.632986443)):
            Rectangle(SKETCH10_W, SKETCH10_H)
    extrude(amount=-CUT_EXTRUDE8_DEPTH, mode=Mode.SUBTRACT)

    # Fillet1
    fillet1_edges = [part.edges().sort_by_distance(p)[0] for p in [
        (-48.478715675, 30.48, -24.13),
    ]]
    fillet(fillet1_edges, radius=FILLET1_R)


solid = part.part
